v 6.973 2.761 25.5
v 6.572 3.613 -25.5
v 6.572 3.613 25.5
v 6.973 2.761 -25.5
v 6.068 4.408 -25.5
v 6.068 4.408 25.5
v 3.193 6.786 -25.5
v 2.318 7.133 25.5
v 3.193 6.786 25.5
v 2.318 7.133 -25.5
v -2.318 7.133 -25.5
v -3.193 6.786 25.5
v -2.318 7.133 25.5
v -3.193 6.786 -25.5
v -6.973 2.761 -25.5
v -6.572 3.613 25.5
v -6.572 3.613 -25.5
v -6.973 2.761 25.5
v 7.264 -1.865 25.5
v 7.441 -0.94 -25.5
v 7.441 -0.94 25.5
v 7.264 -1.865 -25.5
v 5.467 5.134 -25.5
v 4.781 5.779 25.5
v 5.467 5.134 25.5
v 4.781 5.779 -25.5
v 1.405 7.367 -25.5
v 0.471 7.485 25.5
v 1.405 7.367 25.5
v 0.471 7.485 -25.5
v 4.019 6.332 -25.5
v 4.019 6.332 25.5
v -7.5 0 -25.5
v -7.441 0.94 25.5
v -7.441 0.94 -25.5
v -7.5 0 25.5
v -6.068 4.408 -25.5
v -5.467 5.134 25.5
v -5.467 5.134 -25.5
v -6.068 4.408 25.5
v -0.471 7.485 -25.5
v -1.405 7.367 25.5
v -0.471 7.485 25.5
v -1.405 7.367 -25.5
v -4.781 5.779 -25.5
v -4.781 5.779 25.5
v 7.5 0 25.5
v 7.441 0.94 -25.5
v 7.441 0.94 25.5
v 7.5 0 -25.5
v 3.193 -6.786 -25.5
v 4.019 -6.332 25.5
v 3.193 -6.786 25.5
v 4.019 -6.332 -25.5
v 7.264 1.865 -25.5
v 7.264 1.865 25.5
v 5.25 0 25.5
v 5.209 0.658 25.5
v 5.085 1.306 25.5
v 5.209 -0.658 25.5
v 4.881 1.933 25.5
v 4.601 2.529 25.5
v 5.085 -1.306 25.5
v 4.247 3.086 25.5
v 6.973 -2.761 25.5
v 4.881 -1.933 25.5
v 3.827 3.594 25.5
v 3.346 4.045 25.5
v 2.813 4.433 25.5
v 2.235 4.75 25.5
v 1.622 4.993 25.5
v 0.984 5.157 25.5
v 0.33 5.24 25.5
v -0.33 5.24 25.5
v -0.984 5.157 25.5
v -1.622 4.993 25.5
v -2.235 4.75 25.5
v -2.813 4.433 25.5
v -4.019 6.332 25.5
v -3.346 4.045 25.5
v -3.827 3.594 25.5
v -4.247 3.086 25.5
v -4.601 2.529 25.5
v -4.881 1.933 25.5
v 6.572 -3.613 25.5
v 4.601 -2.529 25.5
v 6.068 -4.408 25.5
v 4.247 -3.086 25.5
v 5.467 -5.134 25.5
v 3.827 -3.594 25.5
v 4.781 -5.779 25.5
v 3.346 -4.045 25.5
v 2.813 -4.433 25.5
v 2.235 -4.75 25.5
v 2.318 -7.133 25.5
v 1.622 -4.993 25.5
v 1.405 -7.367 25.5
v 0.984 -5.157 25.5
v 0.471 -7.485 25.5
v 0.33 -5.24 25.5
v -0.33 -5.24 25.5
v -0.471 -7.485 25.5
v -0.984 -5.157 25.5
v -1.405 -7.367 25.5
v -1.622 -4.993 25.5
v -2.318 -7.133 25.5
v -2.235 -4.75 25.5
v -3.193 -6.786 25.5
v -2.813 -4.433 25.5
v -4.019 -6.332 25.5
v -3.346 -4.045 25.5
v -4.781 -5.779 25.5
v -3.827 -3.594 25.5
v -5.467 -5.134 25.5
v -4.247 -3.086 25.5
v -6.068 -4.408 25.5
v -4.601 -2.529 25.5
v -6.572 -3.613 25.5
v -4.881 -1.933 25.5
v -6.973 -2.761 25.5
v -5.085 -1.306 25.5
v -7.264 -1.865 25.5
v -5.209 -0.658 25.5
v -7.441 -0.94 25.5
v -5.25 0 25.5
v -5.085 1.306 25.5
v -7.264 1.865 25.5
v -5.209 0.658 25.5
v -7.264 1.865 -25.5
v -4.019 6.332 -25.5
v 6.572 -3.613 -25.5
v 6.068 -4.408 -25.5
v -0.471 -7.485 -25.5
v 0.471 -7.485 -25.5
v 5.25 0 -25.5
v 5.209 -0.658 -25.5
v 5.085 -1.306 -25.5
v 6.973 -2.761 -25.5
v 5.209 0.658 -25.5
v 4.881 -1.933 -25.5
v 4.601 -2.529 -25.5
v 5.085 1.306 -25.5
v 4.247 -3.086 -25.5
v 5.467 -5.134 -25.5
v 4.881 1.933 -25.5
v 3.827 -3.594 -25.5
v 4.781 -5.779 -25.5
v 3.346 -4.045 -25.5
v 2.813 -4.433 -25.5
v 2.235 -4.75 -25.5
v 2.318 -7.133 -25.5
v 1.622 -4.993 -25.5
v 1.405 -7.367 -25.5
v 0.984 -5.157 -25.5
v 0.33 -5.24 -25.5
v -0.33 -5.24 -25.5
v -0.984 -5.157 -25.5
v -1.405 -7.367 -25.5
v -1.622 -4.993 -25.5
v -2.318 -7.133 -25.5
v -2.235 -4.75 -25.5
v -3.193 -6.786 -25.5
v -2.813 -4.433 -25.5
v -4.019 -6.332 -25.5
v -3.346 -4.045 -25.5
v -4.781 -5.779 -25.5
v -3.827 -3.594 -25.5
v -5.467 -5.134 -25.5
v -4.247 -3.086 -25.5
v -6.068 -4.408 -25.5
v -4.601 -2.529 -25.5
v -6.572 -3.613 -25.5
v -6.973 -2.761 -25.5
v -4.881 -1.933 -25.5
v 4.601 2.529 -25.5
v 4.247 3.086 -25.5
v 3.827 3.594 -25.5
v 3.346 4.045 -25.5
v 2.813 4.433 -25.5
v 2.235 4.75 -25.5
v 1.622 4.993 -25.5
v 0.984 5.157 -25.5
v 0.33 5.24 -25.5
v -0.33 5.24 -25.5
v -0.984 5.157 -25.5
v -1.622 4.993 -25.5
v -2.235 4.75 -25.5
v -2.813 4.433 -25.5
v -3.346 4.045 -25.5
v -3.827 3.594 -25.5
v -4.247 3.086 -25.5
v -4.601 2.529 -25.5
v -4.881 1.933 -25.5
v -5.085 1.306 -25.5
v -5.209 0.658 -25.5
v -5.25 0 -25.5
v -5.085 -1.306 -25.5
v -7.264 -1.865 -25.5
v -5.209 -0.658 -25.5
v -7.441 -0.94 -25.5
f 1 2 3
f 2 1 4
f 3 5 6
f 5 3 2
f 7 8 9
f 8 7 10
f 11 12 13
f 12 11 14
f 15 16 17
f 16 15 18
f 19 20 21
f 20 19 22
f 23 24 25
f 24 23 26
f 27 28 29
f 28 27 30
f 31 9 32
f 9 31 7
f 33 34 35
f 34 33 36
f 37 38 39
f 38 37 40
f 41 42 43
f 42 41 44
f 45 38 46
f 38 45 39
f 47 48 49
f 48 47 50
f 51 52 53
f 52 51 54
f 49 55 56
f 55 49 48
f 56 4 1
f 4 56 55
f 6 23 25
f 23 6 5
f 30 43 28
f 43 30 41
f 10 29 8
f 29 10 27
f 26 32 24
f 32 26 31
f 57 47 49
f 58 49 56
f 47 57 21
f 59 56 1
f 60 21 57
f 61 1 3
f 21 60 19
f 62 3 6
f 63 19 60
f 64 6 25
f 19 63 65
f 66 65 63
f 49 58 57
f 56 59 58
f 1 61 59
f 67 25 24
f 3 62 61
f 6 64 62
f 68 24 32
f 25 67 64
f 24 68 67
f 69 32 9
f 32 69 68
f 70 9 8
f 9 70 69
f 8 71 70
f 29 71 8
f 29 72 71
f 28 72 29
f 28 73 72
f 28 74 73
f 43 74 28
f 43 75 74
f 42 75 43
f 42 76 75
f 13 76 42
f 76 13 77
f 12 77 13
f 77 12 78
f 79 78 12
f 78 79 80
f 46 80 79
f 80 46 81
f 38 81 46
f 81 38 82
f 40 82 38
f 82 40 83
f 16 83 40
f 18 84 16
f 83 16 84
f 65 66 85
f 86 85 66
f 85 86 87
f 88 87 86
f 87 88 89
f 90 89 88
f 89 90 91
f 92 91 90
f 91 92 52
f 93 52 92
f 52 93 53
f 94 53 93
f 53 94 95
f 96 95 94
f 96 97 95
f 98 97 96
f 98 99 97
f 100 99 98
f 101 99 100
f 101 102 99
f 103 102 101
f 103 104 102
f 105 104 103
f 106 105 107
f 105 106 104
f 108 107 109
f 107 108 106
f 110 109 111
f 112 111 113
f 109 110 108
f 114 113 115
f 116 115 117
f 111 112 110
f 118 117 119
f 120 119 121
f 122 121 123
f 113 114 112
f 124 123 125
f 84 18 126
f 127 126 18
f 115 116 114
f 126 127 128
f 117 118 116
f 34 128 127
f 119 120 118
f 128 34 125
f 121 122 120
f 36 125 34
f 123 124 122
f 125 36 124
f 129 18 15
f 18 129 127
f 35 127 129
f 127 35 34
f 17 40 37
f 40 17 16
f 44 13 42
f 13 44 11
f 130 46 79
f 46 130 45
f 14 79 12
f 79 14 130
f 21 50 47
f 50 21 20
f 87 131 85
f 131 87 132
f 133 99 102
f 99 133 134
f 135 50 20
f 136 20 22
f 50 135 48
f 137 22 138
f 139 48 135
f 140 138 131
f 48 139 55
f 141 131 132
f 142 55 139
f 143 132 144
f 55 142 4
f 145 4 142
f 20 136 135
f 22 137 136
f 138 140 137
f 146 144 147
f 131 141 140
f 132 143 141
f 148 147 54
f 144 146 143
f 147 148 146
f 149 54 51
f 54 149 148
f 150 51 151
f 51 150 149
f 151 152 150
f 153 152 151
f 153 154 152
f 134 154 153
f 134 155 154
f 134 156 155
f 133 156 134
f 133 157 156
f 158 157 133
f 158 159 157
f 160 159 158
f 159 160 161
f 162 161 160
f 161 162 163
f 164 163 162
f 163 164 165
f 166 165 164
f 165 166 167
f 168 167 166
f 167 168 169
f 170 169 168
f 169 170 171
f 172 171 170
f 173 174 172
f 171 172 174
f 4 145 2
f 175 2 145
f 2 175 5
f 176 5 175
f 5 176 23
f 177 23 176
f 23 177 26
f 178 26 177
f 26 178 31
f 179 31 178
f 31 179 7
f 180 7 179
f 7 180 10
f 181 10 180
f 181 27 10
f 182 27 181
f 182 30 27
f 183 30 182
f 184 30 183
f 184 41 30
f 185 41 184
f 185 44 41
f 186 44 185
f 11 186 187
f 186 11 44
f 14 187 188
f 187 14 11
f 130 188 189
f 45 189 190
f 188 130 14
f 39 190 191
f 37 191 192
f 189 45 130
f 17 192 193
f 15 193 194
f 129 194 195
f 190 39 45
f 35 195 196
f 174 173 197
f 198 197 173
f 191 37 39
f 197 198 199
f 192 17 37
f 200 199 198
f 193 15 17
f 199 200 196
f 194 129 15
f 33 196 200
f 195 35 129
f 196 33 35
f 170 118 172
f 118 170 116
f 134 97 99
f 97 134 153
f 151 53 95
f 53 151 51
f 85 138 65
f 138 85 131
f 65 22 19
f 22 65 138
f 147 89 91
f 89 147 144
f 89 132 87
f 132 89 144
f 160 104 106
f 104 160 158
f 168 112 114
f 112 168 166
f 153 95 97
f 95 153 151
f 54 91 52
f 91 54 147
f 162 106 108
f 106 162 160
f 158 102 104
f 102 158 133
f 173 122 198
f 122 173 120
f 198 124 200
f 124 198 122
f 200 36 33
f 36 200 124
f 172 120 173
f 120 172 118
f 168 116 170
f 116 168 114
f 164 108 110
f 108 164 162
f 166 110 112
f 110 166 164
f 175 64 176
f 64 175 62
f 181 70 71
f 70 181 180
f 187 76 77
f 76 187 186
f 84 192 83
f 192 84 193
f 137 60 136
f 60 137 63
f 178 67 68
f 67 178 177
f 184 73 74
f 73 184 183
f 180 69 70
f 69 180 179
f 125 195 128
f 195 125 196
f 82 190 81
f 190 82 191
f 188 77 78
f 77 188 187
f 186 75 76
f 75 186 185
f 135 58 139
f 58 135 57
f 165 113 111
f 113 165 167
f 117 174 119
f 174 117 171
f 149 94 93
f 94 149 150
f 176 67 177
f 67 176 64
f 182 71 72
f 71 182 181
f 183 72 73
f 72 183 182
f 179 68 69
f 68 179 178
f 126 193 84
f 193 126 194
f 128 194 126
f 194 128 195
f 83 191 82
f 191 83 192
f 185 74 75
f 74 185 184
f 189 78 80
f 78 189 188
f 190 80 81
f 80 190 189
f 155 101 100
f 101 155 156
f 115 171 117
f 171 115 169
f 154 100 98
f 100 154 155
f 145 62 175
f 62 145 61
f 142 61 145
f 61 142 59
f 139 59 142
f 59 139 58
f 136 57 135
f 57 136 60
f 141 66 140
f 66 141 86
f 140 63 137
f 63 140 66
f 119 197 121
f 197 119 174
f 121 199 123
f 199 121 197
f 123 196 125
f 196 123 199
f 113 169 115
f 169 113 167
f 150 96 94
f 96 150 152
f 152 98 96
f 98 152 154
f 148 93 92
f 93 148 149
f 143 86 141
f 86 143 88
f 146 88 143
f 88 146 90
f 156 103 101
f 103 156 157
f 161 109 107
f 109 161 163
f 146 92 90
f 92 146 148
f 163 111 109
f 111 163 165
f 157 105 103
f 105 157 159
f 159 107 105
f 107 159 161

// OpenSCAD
$fn = 50;


difference() {
	union() {
		translate(v = [0, 0, -25.5000000000]) {
			cylinder(h = 51, r = 7.5000000000);
		}
	}
	union() {
		translate(v = [0, 0, -100.0000000000]) {
			cylinder(h = 200, r = 5.2500000000);
		}
	}
}
